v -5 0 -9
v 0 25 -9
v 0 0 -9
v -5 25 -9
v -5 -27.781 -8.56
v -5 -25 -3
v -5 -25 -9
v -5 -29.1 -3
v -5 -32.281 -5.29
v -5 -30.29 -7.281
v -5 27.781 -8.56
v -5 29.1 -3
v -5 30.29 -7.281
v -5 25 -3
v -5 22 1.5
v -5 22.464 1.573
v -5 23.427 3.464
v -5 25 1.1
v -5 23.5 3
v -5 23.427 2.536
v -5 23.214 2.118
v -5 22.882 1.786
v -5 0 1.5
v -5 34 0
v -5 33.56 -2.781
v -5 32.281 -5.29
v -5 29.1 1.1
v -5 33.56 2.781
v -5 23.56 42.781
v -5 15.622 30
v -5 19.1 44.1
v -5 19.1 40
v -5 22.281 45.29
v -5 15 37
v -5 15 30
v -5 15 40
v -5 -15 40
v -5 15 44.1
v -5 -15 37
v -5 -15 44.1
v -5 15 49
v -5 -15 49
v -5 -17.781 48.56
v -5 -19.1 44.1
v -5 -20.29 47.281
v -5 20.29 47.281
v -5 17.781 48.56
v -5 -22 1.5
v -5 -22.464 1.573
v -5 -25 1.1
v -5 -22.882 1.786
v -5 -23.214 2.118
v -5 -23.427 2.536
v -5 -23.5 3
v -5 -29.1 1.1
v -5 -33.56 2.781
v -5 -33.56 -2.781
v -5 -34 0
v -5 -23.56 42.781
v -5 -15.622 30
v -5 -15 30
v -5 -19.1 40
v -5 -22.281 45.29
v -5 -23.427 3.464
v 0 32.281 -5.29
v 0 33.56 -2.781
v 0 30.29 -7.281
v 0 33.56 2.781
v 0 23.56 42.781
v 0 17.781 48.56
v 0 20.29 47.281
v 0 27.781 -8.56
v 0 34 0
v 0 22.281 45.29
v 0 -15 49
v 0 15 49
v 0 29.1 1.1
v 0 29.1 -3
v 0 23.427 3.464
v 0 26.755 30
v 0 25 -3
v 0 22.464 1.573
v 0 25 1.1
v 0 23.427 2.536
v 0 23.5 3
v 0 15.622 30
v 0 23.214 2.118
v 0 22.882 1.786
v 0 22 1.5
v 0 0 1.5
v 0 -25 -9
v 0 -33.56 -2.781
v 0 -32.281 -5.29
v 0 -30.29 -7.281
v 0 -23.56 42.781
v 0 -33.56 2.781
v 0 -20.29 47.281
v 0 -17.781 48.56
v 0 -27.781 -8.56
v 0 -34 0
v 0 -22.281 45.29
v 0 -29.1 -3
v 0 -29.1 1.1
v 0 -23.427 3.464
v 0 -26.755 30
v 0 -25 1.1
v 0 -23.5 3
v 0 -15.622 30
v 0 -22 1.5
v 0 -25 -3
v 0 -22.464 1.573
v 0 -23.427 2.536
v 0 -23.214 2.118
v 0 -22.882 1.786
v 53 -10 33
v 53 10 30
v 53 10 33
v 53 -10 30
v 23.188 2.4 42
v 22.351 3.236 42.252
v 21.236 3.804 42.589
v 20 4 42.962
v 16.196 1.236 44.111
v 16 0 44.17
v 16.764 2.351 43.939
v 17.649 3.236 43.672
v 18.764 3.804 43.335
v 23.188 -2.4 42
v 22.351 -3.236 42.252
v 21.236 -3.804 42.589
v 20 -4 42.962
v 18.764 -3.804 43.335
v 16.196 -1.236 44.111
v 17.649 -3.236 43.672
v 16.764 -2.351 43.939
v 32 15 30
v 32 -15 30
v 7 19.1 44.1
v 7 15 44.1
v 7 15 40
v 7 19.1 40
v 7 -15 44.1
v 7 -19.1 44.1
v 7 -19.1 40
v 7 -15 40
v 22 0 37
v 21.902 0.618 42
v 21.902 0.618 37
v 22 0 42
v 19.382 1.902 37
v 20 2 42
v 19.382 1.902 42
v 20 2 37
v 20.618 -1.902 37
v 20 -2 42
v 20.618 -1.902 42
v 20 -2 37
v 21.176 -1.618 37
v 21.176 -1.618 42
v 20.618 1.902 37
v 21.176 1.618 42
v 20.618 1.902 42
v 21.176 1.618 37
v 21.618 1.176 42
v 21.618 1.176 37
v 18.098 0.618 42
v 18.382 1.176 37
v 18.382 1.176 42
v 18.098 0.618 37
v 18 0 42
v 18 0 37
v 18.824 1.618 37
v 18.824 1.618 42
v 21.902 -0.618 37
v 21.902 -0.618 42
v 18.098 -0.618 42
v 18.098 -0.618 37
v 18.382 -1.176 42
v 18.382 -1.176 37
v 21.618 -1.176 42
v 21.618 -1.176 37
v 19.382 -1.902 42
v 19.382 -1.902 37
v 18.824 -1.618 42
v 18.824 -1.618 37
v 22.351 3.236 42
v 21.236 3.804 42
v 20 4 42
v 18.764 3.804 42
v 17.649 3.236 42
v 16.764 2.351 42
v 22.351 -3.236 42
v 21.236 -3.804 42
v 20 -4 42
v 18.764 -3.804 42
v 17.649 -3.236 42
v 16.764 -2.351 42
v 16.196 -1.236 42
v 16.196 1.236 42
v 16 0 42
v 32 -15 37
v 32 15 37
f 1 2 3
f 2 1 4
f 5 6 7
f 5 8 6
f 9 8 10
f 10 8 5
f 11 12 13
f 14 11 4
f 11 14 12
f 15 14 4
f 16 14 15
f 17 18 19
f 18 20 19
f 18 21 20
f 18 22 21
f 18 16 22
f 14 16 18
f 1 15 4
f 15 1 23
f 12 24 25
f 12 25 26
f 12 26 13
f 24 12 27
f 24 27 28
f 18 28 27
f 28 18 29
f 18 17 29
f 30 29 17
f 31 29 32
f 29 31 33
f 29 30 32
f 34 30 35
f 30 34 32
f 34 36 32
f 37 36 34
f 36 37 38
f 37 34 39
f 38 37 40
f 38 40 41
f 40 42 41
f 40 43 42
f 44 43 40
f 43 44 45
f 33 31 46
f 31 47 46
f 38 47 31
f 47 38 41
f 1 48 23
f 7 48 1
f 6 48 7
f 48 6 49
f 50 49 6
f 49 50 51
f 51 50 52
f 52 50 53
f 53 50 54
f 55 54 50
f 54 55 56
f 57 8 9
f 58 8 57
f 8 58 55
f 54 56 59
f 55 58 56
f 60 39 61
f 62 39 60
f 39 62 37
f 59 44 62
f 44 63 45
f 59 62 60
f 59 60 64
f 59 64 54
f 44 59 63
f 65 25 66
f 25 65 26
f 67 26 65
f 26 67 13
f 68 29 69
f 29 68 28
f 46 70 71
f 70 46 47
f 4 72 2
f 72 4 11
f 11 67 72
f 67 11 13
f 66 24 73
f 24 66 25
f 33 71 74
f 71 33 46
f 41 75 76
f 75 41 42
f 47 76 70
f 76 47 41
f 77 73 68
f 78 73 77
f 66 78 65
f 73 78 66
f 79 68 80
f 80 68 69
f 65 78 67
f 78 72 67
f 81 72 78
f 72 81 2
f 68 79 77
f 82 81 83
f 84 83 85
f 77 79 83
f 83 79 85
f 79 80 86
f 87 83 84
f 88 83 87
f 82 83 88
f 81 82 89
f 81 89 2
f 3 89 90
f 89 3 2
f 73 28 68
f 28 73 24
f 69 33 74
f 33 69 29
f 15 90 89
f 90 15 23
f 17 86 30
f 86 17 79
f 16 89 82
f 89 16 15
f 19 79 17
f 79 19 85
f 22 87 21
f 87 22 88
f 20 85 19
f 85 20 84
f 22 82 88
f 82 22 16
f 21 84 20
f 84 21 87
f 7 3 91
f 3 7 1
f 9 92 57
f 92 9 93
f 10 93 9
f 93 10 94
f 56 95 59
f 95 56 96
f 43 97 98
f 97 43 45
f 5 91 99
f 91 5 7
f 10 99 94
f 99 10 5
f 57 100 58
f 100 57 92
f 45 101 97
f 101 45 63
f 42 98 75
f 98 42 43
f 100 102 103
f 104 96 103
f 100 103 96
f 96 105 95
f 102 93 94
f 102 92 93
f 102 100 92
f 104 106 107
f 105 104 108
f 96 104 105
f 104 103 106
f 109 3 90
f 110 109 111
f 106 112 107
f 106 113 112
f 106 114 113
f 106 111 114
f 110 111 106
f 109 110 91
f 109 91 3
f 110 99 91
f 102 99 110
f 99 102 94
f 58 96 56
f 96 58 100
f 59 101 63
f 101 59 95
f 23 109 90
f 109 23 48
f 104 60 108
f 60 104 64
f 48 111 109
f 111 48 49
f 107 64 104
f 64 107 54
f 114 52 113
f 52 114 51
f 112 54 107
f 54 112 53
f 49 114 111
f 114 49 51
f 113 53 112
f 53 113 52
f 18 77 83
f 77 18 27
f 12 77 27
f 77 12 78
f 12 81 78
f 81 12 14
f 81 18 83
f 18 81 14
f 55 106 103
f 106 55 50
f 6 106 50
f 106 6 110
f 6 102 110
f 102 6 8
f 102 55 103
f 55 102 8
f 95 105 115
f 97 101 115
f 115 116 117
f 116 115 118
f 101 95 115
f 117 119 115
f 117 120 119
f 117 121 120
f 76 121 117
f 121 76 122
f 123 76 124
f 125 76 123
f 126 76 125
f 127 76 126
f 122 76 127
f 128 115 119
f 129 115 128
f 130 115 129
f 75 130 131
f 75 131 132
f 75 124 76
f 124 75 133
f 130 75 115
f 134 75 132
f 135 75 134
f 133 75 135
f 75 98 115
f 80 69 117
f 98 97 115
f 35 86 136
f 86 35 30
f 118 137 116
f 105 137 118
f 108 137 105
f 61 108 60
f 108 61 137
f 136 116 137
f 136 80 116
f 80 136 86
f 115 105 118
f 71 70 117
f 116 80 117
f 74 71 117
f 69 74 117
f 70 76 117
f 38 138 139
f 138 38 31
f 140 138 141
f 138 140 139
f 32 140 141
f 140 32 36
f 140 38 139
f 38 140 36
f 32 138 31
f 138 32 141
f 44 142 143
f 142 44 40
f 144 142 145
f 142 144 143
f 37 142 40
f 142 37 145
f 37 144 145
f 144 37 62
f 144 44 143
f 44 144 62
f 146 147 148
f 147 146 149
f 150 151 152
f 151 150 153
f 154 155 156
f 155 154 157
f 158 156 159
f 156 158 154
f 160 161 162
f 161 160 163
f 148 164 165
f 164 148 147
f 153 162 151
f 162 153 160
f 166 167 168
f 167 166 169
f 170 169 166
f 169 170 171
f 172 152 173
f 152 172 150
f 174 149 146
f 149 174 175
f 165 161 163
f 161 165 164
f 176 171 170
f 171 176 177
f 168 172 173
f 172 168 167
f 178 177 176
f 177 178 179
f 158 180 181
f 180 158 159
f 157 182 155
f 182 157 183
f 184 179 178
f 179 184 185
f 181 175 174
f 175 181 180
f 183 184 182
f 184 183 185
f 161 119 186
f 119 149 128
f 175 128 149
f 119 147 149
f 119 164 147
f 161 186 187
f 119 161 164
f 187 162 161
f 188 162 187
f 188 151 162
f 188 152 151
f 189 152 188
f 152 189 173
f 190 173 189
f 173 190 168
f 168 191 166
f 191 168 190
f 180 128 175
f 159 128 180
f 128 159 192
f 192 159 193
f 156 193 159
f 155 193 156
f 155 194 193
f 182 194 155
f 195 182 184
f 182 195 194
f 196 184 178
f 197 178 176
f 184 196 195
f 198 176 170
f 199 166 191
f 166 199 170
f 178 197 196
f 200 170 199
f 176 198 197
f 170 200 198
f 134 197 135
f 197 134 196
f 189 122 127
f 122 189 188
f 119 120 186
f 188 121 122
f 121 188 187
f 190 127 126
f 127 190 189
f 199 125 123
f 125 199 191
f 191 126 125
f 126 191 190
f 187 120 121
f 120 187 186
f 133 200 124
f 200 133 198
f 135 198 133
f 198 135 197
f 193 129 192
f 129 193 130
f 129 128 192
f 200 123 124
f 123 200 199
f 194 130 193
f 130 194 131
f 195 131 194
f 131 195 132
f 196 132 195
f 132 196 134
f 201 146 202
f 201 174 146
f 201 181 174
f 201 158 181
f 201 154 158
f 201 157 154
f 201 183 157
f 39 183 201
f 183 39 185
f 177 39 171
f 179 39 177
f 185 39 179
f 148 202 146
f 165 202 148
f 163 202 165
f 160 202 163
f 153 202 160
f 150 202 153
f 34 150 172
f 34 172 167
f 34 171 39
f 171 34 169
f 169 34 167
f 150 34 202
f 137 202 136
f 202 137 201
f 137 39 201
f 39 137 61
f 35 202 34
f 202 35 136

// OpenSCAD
t = 5;

rx = 100;
rdy = 4.1;
roy = 30;
royl = 50;

p0 = [0,0,18];
p1 = [0,25,18];
p2 = [40,15,18];
p3 = [40,0,18];

k = 12;


module rails(oz=2) {
    
  translate([-rx/2,roy/2,oz]) cube([rx,rdy,rdy]);
  mirror([0,1,0]){
    translate([-rx/2,roy/2,oz]) cube([rx,rdy,rdy]);
  }
    
}

module railsLow(oz=2) {
    
  translate([-rx/2,royl/2,oz]) cube([rx,rdy,rdy]);
  mirror([0,1,0]){
    translate([-rx/2,royl/2,oz]) cube([rx,rdy,rdy]);
  }
    
}


module span() {
difference(){
  hull(){
    translate([p0[0],p0[1],0])cylinder(r=p0[2]/2, h=t, $fn=20);
    translate([p1[0],p1[1],0])cylinder(r=p1[2]/2, h=t, $fn=20);
    translate([p2[0],p2[1],0])cylinder(r=p2[2]/2, h=t, $fn=20);
    translate([p3[0],p3[1],0])cylinder(r=p3[2]/2, h=t, $fn=20);

  }
  
  hull(){
    translate([p0[0]+3,p0[1]-3,-1])cylinder(r=p0[2]/k, h=2*t, $fn=20);
    translate([p1[0]+3,p1[1]-3,-1])cylinder(r=p1[2]/k, h=2*t, $fn=20);
    translate([p2[0]-3,p2[1]-3,-1])cylinder(r=p2[2]/k, h=2*t, $fn=20);
    translate([p3[0]-3,p3[1]-3,-1])cylinder(r=p3[2]/k, h=2*t, $fn=20);
  }

  translate([-120/2,-40,-1])cube([120,40,10]);
}
}

module spanComplete() {
    difference() {
    rotate([0,-90,0])
    union(){
      span();
      mirror([0,1,0])span();
    };

    translate([0,0,38])rails();
    translate([0,0,-5])railsLow();

    } 
}

module nose() {
    
  hull(){
  difference(){
    translate([0,0,0])spanComplete();
    translate([-6,-70/2,-30]) cube([12,70,60]);
  }
  
  
  translate([50,-20/2,30]) cube([3,20,3]);
  }
}

difference(){
union(){
  nose();
  spanComplete();
}
translate([-43,0,38])rails();
translate([20,0,18])cylinder(r=2,h=40,$fn=20);
translate([20,0,42])cylinder(r=4,h=40,$fn=20);
translate([-6,-30/2,29]) cube([38,30,8]);
}
